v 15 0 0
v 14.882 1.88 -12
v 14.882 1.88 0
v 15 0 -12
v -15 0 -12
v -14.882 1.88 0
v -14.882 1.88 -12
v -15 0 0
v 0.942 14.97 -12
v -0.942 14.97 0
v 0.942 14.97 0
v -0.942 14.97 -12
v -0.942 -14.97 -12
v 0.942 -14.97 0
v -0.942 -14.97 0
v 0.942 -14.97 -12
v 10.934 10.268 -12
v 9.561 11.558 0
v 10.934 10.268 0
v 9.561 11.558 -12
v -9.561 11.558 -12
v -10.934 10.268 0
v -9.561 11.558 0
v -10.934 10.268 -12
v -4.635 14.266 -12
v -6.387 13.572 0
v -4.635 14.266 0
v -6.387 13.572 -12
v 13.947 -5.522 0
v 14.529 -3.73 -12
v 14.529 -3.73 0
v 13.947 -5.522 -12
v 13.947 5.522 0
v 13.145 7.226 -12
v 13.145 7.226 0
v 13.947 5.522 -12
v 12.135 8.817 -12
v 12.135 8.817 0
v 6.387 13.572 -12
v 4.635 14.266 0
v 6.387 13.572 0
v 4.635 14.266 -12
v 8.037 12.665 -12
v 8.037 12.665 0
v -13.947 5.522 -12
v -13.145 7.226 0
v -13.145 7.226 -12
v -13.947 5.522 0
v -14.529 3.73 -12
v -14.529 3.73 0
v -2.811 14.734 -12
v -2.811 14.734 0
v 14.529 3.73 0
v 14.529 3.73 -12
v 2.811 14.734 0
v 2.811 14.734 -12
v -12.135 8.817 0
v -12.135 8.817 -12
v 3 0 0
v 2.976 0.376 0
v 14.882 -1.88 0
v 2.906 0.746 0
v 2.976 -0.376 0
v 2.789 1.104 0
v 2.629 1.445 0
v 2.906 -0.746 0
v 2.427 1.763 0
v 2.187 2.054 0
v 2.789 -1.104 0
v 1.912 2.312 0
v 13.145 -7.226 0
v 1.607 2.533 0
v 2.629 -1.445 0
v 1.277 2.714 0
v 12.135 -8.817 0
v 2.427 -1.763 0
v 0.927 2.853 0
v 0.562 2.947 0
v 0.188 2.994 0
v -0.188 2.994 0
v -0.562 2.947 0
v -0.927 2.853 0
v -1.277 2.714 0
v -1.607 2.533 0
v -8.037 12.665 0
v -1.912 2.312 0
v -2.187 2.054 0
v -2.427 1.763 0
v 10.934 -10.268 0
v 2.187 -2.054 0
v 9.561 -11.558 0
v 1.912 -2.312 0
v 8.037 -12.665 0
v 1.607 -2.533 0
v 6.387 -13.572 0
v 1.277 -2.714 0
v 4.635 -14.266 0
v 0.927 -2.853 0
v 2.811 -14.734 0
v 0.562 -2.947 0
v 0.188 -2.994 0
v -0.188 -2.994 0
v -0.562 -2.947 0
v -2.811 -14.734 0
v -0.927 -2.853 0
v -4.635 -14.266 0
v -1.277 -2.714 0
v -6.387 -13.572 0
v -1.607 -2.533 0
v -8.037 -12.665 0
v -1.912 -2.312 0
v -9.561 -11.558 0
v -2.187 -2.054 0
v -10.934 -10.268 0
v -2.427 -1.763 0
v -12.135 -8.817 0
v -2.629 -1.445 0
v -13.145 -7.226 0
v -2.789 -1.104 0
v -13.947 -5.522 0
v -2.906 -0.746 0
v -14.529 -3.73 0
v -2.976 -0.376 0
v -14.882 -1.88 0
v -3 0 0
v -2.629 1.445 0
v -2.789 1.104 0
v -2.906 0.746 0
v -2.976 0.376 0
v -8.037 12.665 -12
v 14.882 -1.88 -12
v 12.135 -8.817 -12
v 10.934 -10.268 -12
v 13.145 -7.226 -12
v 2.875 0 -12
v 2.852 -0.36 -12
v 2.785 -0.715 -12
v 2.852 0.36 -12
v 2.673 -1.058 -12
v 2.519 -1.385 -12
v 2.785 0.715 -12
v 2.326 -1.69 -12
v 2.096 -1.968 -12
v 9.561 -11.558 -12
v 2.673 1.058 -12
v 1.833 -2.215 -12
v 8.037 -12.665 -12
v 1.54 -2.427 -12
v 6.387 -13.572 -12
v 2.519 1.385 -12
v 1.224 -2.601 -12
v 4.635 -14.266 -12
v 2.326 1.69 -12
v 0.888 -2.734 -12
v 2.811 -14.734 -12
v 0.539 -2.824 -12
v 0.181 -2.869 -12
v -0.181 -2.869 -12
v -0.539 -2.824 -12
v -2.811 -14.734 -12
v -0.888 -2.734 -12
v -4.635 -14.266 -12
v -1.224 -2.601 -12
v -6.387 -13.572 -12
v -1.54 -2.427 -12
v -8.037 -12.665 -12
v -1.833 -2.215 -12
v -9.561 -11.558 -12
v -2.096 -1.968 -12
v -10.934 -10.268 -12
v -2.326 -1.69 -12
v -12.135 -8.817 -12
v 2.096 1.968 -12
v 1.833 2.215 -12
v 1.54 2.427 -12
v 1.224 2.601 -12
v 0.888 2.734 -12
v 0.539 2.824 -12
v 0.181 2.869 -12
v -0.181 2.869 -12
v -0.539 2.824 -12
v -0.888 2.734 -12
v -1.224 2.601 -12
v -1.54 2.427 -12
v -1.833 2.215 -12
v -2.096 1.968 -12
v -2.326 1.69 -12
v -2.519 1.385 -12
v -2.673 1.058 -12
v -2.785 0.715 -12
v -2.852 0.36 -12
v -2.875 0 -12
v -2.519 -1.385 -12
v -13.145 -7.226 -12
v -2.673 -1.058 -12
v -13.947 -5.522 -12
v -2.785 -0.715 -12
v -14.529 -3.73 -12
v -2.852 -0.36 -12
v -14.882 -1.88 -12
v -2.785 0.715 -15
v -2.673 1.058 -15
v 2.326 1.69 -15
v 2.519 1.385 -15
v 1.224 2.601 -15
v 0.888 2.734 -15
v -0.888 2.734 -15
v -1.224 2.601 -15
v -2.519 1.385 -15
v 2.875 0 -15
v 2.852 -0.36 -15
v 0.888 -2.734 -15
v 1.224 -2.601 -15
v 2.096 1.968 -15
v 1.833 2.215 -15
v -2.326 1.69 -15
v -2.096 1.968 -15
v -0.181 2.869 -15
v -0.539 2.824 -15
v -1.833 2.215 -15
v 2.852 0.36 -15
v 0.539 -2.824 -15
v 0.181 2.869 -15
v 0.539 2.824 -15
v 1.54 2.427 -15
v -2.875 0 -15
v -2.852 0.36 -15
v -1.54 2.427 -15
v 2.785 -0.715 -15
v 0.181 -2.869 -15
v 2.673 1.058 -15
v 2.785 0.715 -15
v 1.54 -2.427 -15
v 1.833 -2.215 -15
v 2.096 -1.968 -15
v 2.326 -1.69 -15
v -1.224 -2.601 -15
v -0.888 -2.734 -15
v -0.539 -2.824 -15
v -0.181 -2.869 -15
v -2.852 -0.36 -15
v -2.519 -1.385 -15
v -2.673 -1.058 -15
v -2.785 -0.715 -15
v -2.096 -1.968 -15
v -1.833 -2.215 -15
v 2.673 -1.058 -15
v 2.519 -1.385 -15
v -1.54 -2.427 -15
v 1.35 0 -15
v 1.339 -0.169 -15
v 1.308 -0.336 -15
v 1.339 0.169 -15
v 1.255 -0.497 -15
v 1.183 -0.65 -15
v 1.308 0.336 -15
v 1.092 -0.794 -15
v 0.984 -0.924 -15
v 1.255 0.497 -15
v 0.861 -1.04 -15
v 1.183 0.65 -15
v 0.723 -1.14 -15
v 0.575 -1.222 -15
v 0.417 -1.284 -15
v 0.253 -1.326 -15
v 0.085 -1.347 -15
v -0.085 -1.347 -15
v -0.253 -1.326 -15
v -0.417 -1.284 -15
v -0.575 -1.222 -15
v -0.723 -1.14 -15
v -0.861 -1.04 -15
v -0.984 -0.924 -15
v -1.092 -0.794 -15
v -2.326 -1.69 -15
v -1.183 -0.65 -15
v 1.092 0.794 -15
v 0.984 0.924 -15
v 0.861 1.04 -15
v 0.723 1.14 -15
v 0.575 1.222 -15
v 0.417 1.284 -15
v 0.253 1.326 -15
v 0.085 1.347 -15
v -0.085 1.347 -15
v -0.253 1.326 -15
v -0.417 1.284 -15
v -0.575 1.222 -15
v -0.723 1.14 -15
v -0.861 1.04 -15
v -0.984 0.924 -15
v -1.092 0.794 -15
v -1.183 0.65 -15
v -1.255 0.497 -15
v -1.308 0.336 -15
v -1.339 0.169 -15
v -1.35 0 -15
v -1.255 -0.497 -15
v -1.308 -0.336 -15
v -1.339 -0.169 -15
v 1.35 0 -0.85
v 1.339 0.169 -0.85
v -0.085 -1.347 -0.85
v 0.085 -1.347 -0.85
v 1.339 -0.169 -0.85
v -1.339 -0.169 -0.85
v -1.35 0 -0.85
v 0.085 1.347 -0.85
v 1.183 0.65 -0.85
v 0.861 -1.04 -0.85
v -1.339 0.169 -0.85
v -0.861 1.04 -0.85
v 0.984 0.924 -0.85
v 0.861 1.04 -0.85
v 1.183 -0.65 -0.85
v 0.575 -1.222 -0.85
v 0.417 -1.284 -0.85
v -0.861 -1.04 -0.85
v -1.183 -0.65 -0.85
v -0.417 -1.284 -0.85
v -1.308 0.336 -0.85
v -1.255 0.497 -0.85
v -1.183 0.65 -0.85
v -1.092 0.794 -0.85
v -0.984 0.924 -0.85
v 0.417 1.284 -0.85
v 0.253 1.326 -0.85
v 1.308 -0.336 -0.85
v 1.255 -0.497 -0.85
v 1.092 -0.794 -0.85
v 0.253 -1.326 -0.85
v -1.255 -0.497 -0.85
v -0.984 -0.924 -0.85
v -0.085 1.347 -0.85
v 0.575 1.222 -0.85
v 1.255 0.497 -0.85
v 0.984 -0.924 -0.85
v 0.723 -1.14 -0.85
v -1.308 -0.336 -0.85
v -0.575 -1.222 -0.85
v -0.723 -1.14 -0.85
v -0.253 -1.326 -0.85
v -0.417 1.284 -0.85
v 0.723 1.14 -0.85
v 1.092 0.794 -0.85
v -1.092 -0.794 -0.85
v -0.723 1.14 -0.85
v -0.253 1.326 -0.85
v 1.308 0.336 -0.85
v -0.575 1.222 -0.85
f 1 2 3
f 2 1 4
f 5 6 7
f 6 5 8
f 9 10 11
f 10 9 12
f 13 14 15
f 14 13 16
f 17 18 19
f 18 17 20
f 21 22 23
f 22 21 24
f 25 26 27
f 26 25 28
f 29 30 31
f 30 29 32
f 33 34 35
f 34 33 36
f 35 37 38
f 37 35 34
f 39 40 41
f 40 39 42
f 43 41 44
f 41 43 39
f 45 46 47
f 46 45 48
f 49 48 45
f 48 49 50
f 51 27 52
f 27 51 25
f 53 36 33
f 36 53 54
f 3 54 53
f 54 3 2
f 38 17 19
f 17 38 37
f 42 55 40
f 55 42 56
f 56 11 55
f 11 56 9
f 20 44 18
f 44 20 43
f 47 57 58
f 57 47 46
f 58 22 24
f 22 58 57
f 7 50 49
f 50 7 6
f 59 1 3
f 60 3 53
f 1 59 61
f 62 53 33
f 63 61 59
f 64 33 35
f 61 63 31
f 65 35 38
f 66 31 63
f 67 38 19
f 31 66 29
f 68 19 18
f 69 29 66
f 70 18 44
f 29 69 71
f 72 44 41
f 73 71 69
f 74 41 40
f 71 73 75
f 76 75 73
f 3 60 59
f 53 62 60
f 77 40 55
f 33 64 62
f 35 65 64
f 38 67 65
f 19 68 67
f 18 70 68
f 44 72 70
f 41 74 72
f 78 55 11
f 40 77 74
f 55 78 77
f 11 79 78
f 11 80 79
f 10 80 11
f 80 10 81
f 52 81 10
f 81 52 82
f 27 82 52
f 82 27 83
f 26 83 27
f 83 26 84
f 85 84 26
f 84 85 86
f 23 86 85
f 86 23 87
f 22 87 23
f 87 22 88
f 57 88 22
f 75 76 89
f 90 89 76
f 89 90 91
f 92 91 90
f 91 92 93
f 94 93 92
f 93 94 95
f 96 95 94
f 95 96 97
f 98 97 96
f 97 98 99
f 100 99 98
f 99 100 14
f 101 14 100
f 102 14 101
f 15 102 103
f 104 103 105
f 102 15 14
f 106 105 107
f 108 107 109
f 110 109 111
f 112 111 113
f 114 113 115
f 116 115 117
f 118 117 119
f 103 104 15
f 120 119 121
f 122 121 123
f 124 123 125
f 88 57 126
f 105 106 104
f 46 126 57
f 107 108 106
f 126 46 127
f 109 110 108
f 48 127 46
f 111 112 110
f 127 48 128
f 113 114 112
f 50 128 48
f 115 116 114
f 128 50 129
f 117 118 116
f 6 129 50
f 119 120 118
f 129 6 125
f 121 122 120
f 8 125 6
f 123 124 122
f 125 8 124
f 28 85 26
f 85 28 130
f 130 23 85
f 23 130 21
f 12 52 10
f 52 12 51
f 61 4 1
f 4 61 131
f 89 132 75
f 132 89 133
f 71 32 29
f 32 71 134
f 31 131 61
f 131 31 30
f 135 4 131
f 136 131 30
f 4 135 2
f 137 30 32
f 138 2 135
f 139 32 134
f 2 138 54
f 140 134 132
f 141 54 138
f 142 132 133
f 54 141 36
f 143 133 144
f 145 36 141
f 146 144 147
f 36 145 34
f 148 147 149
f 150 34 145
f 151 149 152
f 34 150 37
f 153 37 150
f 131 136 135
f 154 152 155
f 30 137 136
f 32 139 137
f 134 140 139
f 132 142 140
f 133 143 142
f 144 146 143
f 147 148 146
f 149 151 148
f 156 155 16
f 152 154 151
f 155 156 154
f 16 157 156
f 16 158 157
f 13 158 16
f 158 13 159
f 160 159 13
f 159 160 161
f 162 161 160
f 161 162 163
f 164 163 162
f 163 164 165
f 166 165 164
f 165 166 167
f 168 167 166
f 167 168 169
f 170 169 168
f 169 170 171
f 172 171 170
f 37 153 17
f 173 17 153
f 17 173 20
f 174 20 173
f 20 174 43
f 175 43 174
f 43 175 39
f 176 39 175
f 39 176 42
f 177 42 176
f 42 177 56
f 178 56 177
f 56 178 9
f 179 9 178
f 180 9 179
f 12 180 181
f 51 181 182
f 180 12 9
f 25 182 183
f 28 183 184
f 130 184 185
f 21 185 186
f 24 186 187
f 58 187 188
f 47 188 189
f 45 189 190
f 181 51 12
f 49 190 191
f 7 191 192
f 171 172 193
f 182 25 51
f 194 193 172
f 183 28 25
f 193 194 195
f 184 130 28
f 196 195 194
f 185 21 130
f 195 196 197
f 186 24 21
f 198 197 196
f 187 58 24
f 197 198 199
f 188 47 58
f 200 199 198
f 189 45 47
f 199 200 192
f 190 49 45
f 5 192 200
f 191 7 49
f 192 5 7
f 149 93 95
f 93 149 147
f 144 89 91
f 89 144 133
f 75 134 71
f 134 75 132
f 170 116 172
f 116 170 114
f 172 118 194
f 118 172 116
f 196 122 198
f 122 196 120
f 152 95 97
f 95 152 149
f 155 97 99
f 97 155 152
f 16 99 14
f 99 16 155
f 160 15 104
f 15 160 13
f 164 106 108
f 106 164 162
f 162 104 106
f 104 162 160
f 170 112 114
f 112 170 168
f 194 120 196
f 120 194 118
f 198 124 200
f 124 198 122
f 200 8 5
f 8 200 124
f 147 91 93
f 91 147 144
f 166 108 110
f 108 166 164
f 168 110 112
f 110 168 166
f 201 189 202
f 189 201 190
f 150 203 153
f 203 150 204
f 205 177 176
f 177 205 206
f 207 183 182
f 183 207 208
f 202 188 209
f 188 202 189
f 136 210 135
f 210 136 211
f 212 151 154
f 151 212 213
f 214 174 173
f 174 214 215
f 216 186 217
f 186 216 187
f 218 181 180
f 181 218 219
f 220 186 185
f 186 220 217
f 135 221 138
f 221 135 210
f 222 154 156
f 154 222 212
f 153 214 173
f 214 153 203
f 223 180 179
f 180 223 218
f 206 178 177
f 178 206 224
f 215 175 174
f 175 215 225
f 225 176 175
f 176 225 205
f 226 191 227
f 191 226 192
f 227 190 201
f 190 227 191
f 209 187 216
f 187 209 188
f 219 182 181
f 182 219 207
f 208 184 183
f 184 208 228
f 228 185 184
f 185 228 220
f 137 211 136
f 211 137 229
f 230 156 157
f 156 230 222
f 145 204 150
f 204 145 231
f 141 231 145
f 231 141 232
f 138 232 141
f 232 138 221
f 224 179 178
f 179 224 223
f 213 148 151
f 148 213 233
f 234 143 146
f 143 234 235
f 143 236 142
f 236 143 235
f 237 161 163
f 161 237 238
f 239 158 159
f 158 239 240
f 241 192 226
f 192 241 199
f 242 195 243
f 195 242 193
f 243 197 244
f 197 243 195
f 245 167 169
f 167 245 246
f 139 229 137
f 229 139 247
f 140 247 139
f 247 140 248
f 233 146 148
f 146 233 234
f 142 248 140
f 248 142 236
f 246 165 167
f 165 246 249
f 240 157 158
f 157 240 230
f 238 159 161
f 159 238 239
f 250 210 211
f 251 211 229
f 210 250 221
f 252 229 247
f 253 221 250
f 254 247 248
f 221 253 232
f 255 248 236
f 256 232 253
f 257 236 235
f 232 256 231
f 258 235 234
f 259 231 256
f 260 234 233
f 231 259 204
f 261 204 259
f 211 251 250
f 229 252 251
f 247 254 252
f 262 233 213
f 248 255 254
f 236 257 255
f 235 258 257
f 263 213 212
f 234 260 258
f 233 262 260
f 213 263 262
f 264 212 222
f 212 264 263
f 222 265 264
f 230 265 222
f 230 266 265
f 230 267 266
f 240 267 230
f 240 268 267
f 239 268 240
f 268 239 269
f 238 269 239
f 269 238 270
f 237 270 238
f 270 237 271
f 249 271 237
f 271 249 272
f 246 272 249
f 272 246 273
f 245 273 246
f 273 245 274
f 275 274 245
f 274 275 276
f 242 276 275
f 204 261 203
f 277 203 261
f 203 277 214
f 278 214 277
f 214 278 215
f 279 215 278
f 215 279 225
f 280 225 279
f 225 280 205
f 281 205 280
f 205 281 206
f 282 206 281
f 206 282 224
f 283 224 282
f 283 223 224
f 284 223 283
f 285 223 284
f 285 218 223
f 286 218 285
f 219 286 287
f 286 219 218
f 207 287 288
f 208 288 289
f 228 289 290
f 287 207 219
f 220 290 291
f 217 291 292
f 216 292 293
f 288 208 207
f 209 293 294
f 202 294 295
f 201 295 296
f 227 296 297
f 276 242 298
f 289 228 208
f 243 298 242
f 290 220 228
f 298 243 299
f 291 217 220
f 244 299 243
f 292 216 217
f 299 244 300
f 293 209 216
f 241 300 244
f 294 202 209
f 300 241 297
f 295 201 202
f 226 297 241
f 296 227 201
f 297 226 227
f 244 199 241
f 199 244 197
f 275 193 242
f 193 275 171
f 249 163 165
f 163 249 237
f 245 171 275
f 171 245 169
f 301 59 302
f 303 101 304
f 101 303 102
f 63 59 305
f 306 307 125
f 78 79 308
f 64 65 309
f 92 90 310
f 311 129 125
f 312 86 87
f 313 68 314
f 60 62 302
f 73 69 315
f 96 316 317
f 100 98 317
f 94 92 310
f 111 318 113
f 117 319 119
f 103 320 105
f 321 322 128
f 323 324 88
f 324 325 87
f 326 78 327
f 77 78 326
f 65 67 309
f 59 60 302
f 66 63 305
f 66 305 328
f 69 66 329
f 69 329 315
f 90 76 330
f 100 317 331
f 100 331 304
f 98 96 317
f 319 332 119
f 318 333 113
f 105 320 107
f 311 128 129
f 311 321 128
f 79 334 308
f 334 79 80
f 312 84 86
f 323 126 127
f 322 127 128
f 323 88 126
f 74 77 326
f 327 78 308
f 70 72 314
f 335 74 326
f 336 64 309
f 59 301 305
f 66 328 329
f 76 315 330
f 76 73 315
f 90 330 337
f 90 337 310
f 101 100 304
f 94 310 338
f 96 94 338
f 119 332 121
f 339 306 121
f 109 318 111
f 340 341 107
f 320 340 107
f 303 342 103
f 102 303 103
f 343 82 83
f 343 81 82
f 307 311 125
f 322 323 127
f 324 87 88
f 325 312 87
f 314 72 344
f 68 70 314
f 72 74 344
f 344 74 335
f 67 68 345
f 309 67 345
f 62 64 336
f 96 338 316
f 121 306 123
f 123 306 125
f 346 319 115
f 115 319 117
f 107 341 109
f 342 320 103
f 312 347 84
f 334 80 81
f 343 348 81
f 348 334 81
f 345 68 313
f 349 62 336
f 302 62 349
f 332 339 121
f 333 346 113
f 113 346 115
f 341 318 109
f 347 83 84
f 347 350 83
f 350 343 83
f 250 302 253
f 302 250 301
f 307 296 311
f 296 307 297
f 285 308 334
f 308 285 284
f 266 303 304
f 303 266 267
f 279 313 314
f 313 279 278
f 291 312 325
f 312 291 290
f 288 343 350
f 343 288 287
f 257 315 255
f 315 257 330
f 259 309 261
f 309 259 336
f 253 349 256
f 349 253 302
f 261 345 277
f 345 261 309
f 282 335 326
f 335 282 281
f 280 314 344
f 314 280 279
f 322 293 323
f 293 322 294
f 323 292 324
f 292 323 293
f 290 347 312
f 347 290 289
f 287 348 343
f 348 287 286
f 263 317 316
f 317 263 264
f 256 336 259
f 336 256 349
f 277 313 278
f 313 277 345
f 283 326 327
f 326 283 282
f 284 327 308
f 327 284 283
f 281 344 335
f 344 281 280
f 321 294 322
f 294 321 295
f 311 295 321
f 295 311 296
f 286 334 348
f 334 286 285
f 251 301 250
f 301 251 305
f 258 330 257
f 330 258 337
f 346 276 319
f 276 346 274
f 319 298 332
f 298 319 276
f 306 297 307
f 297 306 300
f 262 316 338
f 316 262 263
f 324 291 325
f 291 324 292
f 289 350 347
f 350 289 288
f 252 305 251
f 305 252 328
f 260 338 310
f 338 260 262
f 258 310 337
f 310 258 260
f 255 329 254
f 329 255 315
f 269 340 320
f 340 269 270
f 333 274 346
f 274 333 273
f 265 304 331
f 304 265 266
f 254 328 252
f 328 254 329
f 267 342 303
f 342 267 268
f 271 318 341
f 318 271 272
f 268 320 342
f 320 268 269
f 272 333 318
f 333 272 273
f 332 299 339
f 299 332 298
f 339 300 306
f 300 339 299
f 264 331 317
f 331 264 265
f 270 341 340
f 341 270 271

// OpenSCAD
$fn = 50;


difference() {
	union() {
		translate(v = [0, 0, -12.0000000000]) {
			cylinder(h = 12, r = 15.0000000000);
		}
		translate(v = [0, 0, -15.0000000000]) {
			cylinder(h = 15, r = 2.8750000000);
		}
	}
	union() {
		translate(v = [0, 0, 0]) {
			rotate(a = [0, 0, 0]) {
				difference() {
					union() {
						translate(v = [0, 0, -15.0000000000]) {
							cylinder(h = 15, r = 1.0000000000);
						}
						translate(v = [0, 0, -0.8500000000]) {
							cylinder(h = 0.8500000000, r1 = 1.3500000000, r2 = 3.0000000000);
						}
						translate(v = [0, 0, -15.0000000000]) {
							cylinder(h = 15, r = 1.3500000000);
						}
						translate(v = [0, 0, -15.0000000000]) {
							cylinder(h = 15, r = 1.0000000000);
						}
					}
					union();
				}
			}
		}
	}
}
